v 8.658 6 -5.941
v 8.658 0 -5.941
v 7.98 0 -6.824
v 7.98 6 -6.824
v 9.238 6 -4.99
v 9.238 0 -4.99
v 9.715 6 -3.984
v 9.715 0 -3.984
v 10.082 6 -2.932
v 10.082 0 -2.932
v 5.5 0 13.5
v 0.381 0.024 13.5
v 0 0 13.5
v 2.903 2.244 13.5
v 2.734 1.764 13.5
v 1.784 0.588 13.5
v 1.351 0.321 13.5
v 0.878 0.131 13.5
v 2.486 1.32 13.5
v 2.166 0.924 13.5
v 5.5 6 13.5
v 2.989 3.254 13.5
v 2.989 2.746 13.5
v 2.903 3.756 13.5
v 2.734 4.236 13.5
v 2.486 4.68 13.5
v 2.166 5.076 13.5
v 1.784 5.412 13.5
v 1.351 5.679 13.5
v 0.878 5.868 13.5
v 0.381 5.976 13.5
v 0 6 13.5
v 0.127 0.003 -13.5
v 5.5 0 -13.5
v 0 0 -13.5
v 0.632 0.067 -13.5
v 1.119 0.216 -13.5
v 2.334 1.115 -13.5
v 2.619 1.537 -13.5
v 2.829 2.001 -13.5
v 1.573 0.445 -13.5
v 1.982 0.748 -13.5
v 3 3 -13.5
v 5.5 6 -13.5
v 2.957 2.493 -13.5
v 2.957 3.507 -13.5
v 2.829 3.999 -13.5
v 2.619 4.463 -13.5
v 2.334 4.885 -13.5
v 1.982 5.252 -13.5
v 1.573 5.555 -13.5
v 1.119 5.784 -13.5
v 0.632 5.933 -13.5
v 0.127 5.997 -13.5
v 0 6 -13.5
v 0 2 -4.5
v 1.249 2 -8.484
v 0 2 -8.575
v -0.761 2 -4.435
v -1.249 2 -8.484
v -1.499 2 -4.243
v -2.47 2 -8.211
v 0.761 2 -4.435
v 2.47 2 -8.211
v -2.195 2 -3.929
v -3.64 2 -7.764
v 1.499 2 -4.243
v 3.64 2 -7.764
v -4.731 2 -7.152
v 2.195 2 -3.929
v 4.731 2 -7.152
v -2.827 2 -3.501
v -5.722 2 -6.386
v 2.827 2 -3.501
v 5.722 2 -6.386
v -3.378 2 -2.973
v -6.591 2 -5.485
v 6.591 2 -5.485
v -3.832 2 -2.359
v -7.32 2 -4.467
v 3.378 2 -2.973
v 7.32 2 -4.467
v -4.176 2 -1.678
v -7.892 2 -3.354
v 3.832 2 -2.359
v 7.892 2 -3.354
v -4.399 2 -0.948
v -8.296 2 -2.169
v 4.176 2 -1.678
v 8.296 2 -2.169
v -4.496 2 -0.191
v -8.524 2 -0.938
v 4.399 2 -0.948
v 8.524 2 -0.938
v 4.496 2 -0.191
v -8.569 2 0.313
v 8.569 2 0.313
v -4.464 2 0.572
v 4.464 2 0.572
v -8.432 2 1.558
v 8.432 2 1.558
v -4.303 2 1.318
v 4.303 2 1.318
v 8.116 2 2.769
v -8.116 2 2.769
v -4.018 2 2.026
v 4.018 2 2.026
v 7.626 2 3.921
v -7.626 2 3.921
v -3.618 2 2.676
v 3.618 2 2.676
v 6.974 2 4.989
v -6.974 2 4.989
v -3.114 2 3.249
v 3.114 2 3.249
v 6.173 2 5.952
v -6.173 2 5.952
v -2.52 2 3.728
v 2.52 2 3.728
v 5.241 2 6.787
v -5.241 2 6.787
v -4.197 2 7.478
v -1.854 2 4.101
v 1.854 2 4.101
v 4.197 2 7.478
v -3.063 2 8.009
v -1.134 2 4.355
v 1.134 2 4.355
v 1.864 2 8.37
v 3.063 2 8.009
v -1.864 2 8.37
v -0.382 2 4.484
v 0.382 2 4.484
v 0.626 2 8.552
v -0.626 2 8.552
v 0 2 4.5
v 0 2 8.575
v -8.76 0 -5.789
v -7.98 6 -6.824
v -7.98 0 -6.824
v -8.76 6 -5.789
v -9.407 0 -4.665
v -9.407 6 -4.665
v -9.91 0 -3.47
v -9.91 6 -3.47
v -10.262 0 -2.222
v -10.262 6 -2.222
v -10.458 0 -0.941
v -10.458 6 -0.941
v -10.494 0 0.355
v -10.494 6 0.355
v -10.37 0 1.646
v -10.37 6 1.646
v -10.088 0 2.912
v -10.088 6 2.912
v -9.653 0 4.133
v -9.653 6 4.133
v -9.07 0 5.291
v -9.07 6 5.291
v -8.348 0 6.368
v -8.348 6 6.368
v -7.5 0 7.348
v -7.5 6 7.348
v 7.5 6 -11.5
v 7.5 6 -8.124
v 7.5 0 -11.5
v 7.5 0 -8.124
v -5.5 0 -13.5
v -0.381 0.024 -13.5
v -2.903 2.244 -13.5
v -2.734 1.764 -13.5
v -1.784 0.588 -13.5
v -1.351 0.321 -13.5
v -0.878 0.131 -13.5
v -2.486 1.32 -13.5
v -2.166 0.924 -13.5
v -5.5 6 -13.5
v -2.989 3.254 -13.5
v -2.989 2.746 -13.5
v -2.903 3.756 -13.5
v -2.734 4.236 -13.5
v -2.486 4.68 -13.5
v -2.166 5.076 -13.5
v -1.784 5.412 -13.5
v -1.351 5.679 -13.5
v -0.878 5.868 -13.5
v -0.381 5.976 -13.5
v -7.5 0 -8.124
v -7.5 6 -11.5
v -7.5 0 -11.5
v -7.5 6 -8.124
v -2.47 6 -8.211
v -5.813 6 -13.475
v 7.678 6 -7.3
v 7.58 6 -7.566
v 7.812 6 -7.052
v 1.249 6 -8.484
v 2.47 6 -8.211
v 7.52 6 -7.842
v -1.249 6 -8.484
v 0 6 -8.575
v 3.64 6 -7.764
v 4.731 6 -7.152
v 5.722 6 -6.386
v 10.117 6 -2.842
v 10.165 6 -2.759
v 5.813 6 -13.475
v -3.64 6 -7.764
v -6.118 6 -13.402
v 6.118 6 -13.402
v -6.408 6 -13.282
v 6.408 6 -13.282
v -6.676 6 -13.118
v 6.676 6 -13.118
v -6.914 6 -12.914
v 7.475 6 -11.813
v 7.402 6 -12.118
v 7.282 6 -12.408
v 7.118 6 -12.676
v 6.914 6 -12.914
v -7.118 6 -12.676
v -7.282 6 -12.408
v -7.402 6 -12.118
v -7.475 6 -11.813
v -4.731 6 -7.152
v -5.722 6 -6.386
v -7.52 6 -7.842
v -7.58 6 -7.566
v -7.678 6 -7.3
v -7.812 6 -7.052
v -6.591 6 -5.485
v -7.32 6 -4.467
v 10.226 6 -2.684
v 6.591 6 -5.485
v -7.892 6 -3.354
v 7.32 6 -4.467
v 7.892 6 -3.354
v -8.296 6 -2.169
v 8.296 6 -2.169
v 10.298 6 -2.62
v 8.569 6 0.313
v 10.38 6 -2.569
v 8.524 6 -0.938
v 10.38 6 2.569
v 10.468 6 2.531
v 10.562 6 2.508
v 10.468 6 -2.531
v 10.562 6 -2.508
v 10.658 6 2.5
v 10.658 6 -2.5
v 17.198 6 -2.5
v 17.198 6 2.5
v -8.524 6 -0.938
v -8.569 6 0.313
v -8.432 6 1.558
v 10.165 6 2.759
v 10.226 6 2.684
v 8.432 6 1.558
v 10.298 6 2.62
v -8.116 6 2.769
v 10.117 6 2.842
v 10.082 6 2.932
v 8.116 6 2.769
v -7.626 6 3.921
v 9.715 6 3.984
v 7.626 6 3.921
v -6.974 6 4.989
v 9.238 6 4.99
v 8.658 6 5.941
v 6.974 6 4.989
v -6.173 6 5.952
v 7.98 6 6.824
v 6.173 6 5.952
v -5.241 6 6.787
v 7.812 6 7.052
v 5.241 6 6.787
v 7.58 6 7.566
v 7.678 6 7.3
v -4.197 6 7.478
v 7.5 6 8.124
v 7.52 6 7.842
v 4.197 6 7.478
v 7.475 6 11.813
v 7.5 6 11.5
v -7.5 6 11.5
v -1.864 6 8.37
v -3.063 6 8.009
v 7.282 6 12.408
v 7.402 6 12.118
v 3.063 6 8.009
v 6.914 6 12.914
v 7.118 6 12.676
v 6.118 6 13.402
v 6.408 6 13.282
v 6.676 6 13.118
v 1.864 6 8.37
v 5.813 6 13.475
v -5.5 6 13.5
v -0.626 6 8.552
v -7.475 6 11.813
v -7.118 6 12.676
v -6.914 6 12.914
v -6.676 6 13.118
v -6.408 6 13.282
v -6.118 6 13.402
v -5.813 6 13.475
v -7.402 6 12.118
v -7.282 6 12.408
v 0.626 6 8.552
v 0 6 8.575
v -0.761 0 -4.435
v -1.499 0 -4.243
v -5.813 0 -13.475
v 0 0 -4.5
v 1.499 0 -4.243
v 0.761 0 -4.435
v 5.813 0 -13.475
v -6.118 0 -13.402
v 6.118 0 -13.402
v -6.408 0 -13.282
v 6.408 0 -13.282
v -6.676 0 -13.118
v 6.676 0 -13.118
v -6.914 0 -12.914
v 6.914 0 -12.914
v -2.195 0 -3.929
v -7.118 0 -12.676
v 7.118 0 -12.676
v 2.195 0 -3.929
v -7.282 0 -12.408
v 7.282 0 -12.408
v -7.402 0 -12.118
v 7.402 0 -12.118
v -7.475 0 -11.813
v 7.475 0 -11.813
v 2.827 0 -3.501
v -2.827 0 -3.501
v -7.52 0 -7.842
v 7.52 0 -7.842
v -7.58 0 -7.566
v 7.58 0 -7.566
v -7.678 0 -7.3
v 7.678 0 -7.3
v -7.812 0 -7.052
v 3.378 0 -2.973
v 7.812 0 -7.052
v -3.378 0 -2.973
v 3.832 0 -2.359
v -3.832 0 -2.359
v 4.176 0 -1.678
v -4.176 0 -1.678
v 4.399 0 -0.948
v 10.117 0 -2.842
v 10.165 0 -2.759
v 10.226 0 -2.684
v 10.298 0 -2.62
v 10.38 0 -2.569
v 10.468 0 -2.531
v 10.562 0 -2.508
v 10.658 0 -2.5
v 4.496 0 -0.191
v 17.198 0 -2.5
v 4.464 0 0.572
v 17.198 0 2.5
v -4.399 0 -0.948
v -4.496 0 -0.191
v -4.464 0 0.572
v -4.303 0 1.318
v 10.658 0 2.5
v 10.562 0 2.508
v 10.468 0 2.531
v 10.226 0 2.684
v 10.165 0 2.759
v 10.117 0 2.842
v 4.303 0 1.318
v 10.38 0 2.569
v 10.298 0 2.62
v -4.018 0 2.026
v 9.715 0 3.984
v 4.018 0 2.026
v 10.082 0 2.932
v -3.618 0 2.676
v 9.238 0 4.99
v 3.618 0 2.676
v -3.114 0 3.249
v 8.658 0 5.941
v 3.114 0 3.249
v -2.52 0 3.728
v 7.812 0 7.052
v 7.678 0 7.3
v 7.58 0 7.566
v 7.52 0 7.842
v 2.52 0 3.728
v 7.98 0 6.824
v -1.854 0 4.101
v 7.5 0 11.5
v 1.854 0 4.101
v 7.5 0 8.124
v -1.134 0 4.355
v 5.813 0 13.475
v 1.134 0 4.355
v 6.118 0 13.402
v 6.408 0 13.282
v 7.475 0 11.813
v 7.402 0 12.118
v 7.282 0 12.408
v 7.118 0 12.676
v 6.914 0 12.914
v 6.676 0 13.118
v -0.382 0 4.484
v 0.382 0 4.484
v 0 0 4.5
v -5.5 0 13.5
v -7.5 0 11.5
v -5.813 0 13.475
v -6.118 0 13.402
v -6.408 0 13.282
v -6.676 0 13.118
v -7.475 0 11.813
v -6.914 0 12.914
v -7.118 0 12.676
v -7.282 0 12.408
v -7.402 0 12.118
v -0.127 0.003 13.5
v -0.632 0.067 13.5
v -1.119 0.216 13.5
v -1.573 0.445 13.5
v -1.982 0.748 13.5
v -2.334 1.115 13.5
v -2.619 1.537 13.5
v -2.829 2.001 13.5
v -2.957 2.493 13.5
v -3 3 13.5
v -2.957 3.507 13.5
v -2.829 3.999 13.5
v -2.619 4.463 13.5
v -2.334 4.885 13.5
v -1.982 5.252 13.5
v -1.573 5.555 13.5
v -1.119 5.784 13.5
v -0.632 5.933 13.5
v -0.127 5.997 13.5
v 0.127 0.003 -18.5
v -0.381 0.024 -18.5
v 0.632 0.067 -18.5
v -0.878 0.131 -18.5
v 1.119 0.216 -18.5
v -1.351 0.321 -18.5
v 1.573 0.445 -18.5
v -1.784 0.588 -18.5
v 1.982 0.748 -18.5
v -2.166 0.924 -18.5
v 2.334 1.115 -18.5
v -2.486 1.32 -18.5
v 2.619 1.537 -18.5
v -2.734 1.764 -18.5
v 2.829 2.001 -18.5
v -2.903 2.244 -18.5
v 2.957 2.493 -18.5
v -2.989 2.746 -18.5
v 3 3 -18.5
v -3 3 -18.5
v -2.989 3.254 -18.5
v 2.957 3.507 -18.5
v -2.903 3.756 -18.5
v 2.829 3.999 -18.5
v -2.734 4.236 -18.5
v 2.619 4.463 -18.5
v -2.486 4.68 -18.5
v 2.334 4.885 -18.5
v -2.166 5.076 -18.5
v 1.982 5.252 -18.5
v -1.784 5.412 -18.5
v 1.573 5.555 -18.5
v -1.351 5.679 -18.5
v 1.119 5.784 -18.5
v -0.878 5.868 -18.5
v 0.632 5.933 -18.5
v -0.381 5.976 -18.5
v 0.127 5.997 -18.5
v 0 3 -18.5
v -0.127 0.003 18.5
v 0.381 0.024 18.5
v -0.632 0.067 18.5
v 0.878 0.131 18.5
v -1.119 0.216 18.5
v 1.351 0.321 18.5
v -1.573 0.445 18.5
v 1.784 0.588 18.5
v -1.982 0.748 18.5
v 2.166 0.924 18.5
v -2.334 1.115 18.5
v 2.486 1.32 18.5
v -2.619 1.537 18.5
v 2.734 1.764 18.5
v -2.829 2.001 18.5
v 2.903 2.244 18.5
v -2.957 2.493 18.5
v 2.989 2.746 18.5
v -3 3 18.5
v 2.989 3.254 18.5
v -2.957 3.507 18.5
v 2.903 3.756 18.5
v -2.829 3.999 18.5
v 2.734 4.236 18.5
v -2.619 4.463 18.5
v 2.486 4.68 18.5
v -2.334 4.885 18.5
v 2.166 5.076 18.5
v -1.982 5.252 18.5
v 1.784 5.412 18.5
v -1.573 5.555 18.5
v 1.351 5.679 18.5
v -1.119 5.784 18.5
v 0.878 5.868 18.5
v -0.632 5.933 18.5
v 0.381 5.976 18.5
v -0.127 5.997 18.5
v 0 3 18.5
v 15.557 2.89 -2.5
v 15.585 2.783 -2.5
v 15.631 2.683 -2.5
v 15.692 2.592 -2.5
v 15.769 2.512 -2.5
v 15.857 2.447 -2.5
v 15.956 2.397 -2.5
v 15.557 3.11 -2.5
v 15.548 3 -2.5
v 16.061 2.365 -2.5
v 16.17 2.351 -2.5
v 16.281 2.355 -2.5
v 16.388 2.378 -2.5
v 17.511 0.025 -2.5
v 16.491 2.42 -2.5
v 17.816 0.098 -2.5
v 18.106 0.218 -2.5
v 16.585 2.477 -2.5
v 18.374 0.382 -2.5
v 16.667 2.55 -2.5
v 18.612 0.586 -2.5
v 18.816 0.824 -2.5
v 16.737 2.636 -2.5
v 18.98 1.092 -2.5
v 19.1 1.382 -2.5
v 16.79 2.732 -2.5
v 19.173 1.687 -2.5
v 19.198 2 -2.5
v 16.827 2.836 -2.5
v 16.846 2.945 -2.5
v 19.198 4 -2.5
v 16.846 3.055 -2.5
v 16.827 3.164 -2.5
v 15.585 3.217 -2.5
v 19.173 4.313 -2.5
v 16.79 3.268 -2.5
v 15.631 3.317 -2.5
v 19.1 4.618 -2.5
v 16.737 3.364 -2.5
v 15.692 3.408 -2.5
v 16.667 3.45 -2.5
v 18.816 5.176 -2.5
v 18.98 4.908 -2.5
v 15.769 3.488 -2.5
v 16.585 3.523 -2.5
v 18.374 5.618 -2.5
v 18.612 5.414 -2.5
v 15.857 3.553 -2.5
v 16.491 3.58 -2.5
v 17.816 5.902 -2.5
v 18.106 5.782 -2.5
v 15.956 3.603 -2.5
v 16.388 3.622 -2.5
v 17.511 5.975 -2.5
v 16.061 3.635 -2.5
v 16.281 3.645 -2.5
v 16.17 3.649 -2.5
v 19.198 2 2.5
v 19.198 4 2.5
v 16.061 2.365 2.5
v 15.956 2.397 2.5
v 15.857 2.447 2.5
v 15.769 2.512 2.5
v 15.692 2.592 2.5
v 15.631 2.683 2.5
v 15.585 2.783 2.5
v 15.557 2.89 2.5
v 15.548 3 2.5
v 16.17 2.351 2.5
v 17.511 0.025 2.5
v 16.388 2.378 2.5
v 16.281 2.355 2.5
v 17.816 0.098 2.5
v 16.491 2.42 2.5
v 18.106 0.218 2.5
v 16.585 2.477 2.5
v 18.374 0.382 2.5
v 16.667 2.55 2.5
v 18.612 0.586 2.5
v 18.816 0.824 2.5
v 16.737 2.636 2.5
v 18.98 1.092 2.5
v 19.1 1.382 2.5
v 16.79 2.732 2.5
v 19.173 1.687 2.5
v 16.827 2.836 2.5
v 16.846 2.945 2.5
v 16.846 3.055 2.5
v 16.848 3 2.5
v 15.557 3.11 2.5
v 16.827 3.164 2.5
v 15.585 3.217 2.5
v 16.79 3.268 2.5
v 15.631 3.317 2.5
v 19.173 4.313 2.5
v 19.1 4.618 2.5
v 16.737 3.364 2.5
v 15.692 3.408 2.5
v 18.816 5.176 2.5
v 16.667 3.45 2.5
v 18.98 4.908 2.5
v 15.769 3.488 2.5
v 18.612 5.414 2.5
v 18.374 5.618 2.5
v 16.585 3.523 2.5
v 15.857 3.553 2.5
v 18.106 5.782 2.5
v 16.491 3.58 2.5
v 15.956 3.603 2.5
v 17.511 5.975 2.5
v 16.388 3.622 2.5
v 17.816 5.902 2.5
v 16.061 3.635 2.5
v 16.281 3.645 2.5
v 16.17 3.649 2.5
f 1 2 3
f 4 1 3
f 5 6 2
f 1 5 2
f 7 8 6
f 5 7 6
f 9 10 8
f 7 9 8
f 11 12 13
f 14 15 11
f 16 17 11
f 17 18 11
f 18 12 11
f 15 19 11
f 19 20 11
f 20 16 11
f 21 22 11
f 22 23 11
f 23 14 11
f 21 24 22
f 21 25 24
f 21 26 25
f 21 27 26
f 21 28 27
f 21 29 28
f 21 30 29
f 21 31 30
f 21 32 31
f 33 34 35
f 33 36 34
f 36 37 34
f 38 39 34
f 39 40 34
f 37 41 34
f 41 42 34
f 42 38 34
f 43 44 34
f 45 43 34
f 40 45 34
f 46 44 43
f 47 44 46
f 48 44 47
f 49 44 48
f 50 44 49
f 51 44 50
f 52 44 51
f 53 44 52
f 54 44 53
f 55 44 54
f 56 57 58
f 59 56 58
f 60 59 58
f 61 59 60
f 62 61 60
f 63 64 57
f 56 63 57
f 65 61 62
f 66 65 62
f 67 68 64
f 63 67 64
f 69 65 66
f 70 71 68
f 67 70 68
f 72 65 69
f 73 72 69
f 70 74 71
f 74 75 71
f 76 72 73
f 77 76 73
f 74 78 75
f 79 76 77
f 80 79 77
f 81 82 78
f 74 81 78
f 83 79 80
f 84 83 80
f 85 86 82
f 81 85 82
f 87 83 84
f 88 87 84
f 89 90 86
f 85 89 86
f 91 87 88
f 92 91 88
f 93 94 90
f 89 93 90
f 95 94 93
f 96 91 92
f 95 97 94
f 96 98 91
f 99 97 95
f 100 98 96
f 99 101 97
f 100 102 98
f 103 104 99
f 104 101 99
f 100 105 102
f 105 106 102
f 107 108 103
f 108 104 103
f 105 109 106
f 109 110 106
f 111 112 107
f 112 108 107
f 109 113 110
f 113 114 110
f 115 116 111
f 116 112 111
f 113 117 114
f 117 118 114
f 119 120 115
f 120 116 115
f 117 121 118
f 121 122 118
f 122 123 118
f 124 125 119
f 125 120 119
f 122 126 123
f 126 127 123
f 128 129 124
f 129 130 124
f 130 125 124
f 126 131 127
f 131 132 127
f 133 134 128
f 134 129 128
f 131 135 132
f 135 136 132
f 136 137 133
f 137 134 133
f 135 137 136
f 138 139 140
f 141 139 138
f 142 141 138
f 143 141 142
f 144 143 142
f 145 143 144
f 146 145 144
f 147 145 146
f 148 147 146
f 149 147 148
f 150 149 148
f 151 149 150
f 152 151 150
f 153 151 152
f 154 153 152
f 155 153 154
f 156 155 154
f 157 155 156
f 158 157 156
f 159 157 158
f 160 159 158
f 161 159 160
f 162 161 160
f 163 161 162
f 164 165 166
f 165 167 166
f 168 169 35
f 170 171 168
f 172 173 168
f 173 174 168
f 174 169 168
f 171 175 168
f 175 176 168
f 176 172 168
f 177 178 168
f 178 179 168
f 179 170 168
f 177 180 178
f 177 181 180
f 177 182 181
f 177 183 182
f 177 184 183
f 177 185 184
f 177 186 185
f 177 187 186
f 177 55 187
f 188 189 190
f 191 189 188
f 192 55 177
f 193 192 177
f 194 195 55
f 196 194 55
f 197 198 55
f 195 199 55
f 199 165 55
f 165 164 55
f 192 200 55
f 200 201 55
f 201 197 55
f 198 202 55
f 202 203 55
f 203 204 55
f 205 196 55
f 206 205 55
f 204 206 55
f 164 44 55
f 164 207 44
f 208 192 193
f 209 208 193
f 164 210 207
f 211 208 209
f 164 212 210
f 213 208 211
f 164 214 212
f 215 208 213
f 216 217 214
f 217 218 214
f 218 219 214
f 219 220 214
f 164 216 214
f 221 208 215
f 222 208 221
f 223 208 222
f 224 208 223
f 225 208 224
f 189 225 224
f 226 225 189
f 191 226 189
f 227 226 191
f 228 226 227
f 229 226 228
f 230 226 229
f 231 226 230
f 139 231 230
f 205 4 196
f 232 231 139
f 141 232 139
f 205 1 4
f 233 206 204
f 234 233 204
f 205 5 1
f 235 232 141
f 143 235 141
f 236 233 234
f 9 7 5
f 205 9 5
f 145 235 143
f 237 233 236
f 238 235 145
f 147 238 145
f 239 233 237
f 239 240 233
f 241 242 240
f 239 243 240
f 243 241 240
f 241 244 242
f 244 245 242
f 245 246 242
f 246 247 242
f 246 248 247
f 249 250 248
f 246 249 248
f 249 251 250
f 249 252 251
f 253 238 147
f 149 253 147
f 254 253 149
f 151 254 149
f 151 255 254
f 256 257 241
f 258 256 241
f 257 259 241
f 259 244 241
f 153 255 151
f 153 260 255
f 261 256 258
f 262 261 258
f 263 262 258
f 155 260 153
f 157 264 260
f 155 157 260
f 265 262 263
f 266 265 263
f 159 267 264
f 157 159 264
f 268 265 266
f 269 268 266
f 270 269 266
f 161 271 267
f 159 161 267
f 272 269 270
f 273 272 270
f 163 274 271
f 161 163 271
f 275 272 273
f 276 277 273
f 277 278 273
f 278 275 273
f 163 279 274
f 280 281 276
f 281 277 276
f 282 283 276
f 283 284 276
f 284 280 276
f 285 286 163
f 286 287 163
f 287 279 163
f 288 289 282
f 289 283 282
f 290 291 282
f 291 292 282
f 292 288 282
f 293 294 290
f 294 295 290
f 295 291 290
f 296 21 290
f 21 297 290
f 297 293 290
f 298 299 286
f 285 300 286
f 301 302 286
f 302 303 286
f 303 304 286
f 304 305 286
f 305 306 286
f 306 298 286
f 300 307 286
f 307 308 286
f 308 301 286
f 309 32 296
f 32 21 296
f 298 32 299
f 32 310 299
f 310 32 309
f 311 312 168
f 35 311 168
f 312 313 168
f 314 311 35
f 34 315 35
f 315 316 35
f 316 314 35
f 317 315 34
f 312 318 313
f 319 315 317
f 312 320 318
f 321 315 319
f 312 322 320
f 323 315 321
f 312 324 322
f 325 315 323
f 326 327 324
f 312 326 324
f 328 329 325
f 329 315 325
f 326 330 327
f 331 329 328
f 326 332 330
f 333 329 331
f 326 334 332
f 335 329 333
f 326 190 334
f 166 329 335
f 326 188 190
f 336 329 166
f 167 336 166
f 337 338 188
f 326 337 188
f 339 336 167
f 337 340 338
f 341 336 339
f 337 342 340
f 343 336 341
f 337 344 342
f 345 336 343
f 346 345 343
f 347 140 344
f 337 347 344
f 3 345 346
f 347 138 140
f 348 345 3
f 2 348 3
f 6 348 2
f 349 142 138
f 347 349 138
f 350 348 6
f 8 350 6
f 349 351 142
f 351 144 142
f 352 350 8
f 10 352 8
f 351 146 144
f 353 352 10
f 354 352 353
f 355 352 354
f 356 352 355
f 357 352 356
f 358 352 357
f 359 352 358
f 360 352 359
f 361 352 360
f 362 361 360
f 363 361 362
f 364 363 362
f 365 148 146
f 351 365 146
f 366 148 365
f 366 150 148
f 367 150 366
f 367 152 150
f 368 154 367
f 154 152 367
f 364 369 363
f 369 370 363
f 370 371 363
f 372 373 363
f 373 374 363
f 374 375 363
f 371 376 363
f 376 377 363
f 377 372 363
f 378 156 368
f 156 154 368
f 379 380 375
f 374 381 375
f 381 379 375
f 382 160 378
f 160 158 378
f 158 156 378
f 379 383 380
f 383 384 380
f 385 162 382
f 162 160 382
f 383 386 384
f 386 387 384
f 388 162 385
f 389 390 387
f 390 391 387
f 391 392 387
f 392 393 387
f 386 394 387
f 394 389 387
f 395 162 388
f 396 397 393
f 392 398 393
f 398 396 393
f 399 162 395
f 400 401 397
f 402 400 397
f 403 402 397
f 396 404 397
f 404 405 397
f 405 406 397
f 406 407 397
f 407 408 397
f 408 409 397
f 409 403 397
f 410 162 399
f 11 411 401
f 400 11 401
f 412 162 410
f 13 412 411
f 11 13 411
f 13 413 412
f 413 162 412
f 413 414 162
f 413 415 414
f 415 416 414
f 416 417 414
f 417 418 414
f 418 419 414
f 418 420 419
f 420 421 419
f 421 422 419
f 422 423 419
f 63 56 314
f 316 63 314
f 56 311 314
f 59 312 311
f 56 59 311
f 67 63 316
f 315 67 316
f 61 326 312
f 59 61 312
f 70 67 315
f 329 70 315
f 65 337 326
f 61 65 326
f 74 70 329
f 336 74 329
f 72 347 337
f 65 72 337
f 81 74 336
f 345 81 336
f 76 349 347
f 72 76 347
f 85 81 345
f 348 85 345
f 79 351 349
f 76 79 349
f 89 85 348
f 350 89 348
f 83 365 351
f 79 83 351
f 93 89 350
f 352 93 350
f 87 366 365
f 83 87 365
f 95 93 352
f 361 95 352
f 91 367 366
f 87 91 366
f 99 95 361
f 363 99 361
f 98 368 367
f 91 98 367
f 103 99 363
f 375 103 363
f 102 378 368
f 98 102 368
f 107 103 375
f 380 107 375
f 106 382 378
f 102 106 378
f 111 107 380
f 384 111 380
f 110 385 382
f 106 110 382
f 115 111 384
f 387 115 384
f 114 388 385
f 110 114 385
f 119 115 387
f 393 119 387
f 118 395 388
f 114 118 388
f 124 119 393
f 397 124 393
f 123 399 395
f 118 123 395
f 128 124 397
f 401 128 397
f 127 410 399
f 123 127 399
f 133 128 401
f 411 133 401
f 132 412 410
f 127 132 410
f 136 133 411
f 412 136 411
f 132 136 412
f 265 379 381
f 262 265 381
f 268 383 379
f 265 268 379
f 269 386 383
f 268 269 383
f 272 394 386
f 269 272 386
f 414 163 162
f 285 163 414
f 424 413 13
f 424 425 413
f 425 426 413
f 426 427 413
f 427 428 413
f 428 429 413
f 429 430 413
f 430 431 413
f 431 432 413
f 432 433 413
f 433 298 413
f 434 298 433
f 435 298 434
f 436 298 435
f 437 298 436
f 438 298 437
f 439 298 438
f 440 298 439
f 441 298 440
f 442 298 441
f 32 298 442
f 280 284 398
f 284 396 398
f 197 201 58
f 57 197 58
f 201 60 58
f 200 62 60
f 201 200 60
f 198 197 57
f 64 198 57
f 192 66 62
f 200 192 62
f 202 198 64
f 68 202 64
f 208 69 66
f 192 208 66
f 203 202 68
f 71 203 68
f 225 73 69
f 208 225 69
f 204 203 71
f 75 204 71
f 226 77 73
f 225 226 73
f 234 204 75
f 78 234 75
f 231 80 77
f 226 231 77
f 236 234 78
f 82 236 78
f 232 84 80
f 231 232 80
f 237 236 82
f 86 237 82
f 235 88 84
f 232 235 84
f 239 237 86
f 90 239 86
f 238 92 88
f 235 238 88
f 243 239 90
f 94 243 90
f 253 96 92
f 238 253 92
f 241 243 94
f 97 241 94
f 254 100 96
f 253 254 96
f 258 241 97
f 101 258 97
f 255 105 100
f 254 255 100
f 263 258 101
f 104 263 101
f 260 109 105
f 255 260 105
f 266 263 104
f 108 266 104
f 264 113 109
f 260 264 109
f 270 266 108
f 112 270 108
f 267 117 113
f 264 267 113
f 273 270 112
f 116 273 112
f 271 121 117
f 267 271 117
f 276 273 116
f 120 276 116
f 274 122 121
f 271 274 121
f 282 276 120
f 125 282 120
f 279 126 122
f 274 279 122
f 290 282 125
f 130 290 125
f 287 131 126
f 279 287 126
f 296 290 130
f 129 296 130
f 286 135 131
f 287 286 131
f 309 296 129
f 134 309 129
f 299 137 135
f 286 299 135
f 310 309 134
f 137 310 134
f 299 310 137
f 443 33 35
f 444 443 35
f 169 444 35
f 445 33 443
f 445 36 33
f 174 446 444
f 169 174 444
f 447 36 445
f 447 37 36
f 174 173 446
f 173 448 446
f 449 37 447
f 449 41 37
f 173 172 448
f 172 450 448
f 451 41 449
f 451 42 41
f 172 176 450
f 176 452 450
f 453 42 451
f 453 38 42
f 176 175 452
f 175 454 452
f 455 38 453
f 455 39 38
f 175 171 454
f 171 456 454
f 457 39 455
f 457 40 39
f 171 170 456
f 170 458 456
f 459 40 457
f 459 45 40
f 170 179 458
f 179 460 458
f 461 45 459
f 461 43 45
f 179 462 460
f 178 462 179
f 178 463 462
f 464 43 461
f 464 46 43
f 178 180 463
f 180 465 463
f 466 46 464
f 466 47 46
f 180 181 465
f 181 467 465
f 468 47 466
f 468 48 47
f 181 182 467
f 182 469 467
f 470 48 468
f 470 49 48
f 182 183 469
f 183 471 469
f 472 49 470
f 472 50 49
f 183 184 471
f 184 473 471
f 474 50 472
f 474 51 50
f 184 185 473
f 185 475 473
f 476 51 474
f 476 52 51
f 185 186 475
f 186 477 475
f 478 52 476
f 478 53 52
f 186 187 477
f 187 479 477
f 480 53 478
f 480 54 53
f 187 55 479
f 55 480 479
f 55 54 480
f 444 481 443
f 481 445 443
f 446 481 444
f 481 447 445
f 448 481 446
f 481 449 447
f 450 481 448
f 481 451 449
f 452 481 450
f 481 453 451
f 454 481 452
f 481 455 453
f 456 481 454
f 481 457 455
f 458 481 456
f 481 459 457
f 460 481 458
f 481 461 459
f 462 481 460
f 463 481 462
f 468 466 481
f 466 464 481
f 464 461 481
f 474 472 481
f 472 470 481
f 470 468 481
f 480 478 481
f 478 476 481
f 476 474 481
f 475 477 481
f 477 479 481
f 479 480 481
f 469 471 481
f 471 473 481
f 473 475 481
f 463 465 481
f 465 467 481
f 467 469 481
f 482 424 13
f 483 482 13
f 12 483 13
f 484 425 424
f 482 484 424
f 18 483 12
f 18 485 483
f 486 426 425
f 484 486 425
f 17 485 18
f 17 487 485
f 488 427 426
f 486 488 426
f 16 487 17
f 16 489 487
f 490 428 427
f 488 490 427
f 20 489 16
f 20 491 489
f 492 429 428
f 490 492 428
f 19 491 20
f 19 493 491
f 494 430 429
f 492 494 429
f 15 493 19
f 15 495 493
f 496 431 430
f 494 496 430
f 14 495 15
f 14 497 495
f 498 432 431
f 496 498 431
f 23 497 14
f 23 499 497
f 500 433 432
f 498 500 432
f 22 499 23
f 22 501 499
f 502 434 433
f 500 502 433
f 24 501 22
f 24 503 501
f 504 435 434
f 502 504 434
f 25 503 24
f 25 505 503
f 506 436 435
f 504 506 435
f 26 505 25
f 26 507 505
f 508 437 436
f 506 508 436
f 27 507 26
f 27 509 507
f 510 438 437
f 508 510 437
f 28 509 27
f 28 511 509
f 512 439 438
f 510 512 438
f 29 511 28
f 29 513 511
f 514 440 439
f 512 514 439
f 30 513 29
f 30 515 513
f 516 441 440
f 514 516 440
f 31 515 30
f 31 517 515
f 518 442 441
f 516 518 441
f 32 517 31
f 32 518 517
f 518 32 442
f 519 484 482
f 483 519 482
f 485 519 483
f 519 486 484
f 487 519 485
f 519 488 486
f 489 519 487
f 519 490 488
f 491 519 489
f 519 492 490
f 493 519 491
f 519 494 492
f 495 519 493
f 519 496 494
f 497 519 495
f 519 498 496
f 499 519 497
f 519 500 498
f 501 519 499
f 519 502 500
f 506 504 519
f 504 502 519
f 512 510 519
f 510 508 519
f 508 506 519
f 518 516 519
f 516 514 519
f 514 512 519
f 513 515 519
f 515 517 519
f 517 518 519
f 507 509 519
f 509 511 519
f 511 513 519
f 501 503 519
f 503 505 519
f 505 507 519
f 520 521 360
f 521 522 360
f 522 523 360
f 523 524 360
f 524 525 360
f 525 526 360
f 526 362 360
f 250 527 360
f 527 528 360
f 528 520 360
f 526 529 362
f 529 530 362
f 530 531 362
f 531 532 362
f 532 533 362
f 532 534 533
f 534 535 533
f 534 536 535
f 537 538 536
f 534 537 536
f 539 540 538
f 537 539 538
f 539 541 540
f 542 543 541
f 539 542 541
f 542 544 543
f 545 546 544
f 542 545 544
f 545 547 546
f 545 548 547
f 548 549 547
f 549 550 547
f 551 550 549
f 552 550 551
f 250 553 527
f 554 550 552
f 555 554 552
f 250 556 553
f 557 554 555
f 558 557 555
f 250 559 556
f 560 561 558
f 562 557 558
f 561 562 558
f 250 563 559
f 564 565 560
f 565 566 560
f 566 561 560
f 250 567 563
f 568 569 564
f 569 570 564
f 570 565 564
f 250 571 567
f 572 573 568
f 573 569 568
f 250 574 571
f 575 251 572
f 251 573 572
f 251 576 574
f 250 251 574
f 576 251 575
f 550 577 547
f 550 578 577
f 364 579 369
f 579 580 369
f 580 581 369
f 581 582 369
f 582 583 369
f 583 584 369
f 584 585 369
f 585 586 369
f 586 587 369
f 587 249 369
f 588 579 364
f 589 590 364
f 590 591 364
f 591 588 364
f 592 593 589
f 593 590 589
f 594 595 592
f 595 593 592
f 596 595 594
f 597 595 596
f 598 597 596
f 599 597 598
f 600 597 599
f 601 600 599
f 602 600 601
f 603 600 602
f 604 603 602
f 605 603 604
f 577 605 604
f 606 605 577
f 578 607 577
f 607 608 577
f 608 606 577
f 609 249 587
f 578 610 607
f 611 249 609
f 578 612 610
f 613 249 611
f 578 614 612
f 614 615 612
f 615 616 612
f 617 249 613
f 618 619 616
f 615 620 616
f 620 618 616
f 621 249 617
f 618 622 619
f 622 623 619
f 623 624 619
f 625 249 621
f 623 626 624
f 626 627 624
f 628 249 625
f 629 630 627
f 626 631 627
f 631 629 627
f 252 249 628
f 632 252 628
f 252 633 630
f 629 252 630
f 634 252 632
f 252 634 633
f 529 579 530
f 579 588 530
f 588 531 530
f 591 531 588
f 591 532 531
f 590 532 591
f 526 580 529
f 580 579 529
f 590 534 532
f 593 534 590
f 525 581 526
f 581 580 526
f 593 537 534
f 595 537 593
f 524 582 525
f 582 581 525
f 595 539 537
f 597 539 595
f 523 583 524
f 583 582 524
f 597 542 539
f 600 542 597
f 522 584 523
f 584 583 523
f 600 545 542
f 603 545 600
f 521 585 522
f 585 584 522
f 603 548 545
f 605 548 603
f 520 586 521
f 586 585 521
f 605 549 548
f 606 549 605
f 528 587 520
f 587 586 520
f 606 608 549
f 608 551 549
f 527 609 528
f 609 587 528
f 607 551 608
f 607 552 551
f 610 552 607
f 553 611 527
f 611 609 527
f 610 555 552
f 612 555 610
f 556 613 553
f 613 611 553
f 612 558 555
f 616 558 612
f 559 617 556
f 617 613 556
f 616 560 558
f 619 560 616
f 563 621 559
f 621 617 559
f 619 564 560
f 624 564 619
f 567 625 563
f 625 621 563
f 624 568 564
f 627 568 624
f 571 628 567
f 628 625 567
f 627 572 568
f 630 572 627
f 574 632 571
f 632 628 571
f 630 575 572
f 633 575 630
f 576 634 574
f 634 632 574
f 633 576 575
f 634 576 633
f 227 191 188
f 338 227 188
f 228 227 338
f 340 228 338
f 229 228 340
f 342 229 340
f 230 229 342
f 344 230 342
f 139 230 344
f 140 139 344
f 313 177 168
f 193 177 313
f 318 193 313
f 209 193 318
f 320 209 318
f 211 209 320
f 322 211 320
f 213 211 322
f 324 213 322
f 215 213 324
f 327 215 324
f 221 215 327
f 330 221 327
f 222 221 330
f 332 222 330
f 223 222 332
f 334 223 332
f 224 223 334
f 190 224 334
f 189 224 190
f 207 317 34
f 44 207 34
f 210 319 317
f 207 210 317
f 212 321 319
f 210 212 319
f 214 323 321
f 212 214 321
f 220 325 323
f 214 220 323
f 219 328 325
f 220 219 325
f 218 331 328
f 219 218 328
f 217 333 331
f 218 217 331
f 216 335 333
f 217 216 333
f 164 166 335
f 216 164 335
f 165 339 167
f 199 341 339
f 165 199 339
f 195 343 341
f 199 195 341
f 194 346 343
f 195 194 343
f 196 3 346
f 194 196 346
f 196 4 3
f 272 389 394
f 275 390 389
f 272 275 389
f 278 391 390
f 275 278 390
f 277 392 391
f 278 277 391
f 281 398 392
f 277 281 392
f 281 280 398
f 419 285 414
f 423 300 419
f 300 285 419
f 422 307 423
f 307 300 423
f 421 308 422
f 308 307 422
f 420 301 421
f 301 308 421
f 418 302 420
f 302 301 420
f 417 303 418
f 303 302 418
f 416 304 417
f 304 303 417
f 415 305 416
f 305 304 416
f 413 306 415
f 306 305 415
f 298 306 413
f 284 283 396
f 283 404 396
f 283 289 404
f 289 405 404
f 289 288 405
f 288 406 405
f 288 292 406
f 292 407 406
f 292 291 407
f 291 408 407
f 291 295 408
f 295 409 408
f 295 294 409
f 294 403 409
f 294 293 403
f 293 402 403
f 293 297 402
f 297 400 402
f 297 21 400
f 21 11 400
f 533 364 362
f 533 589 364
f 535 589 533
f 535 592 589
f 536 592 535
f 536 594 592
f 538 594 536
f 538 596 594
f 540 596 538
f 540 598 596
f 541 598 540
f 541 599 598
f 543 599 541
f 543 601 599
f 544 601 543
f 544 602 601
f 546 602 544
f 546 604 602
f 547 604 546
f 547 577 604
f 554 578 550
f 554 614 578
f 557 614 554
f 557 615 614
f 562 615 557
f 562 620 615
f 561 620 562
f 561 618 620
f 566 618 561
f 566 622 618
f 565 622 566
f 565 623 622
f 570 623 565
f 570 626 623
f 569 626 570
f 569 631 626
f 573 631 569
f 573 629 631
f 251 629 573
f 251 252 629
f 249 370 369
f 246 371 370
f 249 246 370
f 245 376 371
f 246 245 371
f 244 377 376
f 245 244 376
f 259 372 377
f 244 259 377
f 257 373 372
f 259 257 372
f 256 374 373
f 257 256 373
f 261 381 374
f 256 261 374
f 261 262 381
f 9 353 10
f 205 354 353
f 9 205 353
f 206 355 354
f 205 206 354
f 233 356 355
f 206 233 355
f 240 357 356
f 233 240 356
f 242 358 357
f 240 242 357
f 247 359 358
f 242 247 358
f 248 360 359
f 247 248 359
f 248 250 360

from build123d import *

# Parameters (mm, degrees)
BOSS_EXTRUDE1_DEPTH   = 6
BOSS_EXTRUDE1_2_DEPTH = 6
SKETCH1_3_R           = 10.5
SKETCH1_3_R_2         = 4.5
BOSS_EXTRUDE2_DEPTH   = 2
SKETCH2_R             = 8.575
BOSS_EXTRUDE3_DEPTH   = 4
SKETCH3_R             = 3
BOSS_EXTRUDE4_DEPTH   = 5
BOSS_EXTRUDE5_START   = -6
BOSS_EXTRUDE5_DEPTH   = 6
CUT_EXTRUDE1_REACH    = 31.079
SKETCH5_R             = 0.65
FILLET1_R             = 2
FILLET2_R             = 0.6


with BuildPart() as part:
    # Sketch1 → Boss-Extrude1 (new body)
    with BuildSketch(Plane(origin=(0, 0, 0), x_dir=(1, 0, 0), z_dir=(0, 1, 0))):
        with BuildLine():
            Line((-7.5, 13.5), (-7.5, 7.348469228))
            ThreePointArc((-7.5, 7.348469228), (0, 10.5), (7.5, 7.348469228))
            Line((7.5, 7.348469228), (7.5, 13.5))
            Line((7.5, 13.5), (-7.5, 13.5))
        make_face()
    extrude(amount=BOSS_EXTRUDE1_DEPTH)



with BuildPart() as body_2:
    # Sketch1 → Boss-Extrude1 2 (new body)
    with BuildSketch(Plane(origin=(0, 0, 0), x_dir=(1, 0, 0), z_dir=(0, 1, 0))):
        with BuildLine():
            ThreePointArc((7.5, -7.348469228), (0, -10.5), (-7.5, -7.348469228))
            Line((-7.5, -7.348469228), (-7.5, -13.5))
            Line((-7.5, -13.5), (7.5, -13.5))
            Line((7.5, -13.5), (7.5, -7.348469228))
        make_face()
    extrude(amount=BOSS_EXTRUDE1_2_DEPTH)


with BuildPart() as part_1:
    add(part.part)

    add(body_2.part)  # Boss-Extrude2 merges body 2
    # Sketch1<3> → Boss-Extrude2 (add)
    with BuildSketch(Plane(origin=(0, 0, 0), x_dir=(1, 0, 0), z_dir=(0, 1, 0))):
        Circle(SKETCH1_3_R)
        with Locations(Location((0, 0, 0), (0, 0, 270))):
            Circle(SKETCH1_3_R_2, mode=Mode.SUBTRACT)
    extrude(amount=BOSS_EXTRUDE2_DEPTH)

    # Sketch2 → Boss-Extrude3 (add)
    with BuildSketch(Plane(origin=(0, 2, 0), x_dir=(1, 0, 0), z_dir=(0, 1, 0))):
        with BuildLine():
            ThreePointArc((7.5, 7.348469228), (0, 10.5), (-7.5, 7.348469228))
            ThreePointArc((-7.5, 7.348469228), (-10.5, 0), (-7.5, -7.348469228))
            ThreePointArc((-7.5, -7.348469228), (0, -10.5), (7.5, -7.348469228))
            ThreePointArc((7.5, -7.348469228), (10.5, 0), (7.5, 7.348469228))
        make_face()
        with Locations(Location((0, 0, 0), (0, 0, 270))):
            Circle(SKETCH2_R, mode=Mode.SUBTRACT)
    extrude(amount=BOSS_EXTRUDE3_DEPTH)

    # Sketch3 → Boss-Extrude4 (add)
    with BuildSketch(Plane(origin=(0, 0, -13.5), x_dir=(-1, 0, 0), z_dir=(0, 0, -1))):
        with Locations(Location((0, 3, 0), (0, 0, 270))):
            Circle(SKETCH3_R)
    boss_extrude4 = extrude(amount=BOSS_EXTRUDE4_DEPTH)

    # Mirror1: Boss-Extrude4 across plane
    add(boss_extrude4.mirror(Plane.XY))

    # Sketch4 → Boss-Extrude5 (add)
    with BuildSketch(Plane(origin=(0, 6, 0), x_dir=(1, 0, 0), z_dir=(0, 1, 0)).offset(BOSS_EXTRUDE5_START)):
        with BuildLine():
            Line((10.198039027, -2.5), (19.198039027, -2.5))
            Line((19.198039027, -2.5), (19.198039027, 2.5))
            Line((19.198039027, 2.5), (10.198039027, 2.5))
            ThreePointArc((10.198039027, 2.5), (10.5, 0), (10.198039027, -2.5))
        make_face()
    extrude(amount=BOSS_EXTRUDE5_DEPTH)

    # Sketch5 → Cut-Extrude1 (cut, up to next)
    with BuildSketch(Plane(origin=(0, 0, -2.5), x_dir=(-1, 0, 0), z_dir=(0, 0, -1)), mode=Mode.PRIVATE) as cut_extrude1_sk1:
        with Locations((-16.198039027, 3)):
            Circle(SKETCH5_R)
    cut_extrude1_tool1 = extrude(cut_extrude1_sk1.sketch, amount=-CUT_EXTRUDE1_REACH, mode=Mode.PRIVATE) & part_1.part
    add(cut_extrude1_tool1.solids().sort_by_distance((16.198039, 3, -2.5))[0], mode=Mode.SUBTRACT)

    # Fillet1
    fillet1_edges = [part_1.edges().sort_by_distance(p)[0] for p in [
        (7.5, 3, 7.348469228),
        (-7.5, 3, 13.5),
        (7.5, 3, 13.5),
        (19.198039027, 6, 0),
        (19.198039027, 0, 0),
        (-7.5, 3, -7.348469228),
        (-7.5, 3, -13.5),
        (7.5, 3, -13.5),
        (7.5, 3, -7.348469228),
    ]]
    fillet(fillet1_edges, radius=FILLET1_R)

    # Fillet2
    fillet2_edges = [part_1.edges().sort_by_distance(p)[0] for p in [
        (10.198039027, 3, 2.5),
        (10.198039027, 3, -2.5),
    ]]
    fillet(fillet2_edges, radius=FILLET2_R)


solid = part_1.part
